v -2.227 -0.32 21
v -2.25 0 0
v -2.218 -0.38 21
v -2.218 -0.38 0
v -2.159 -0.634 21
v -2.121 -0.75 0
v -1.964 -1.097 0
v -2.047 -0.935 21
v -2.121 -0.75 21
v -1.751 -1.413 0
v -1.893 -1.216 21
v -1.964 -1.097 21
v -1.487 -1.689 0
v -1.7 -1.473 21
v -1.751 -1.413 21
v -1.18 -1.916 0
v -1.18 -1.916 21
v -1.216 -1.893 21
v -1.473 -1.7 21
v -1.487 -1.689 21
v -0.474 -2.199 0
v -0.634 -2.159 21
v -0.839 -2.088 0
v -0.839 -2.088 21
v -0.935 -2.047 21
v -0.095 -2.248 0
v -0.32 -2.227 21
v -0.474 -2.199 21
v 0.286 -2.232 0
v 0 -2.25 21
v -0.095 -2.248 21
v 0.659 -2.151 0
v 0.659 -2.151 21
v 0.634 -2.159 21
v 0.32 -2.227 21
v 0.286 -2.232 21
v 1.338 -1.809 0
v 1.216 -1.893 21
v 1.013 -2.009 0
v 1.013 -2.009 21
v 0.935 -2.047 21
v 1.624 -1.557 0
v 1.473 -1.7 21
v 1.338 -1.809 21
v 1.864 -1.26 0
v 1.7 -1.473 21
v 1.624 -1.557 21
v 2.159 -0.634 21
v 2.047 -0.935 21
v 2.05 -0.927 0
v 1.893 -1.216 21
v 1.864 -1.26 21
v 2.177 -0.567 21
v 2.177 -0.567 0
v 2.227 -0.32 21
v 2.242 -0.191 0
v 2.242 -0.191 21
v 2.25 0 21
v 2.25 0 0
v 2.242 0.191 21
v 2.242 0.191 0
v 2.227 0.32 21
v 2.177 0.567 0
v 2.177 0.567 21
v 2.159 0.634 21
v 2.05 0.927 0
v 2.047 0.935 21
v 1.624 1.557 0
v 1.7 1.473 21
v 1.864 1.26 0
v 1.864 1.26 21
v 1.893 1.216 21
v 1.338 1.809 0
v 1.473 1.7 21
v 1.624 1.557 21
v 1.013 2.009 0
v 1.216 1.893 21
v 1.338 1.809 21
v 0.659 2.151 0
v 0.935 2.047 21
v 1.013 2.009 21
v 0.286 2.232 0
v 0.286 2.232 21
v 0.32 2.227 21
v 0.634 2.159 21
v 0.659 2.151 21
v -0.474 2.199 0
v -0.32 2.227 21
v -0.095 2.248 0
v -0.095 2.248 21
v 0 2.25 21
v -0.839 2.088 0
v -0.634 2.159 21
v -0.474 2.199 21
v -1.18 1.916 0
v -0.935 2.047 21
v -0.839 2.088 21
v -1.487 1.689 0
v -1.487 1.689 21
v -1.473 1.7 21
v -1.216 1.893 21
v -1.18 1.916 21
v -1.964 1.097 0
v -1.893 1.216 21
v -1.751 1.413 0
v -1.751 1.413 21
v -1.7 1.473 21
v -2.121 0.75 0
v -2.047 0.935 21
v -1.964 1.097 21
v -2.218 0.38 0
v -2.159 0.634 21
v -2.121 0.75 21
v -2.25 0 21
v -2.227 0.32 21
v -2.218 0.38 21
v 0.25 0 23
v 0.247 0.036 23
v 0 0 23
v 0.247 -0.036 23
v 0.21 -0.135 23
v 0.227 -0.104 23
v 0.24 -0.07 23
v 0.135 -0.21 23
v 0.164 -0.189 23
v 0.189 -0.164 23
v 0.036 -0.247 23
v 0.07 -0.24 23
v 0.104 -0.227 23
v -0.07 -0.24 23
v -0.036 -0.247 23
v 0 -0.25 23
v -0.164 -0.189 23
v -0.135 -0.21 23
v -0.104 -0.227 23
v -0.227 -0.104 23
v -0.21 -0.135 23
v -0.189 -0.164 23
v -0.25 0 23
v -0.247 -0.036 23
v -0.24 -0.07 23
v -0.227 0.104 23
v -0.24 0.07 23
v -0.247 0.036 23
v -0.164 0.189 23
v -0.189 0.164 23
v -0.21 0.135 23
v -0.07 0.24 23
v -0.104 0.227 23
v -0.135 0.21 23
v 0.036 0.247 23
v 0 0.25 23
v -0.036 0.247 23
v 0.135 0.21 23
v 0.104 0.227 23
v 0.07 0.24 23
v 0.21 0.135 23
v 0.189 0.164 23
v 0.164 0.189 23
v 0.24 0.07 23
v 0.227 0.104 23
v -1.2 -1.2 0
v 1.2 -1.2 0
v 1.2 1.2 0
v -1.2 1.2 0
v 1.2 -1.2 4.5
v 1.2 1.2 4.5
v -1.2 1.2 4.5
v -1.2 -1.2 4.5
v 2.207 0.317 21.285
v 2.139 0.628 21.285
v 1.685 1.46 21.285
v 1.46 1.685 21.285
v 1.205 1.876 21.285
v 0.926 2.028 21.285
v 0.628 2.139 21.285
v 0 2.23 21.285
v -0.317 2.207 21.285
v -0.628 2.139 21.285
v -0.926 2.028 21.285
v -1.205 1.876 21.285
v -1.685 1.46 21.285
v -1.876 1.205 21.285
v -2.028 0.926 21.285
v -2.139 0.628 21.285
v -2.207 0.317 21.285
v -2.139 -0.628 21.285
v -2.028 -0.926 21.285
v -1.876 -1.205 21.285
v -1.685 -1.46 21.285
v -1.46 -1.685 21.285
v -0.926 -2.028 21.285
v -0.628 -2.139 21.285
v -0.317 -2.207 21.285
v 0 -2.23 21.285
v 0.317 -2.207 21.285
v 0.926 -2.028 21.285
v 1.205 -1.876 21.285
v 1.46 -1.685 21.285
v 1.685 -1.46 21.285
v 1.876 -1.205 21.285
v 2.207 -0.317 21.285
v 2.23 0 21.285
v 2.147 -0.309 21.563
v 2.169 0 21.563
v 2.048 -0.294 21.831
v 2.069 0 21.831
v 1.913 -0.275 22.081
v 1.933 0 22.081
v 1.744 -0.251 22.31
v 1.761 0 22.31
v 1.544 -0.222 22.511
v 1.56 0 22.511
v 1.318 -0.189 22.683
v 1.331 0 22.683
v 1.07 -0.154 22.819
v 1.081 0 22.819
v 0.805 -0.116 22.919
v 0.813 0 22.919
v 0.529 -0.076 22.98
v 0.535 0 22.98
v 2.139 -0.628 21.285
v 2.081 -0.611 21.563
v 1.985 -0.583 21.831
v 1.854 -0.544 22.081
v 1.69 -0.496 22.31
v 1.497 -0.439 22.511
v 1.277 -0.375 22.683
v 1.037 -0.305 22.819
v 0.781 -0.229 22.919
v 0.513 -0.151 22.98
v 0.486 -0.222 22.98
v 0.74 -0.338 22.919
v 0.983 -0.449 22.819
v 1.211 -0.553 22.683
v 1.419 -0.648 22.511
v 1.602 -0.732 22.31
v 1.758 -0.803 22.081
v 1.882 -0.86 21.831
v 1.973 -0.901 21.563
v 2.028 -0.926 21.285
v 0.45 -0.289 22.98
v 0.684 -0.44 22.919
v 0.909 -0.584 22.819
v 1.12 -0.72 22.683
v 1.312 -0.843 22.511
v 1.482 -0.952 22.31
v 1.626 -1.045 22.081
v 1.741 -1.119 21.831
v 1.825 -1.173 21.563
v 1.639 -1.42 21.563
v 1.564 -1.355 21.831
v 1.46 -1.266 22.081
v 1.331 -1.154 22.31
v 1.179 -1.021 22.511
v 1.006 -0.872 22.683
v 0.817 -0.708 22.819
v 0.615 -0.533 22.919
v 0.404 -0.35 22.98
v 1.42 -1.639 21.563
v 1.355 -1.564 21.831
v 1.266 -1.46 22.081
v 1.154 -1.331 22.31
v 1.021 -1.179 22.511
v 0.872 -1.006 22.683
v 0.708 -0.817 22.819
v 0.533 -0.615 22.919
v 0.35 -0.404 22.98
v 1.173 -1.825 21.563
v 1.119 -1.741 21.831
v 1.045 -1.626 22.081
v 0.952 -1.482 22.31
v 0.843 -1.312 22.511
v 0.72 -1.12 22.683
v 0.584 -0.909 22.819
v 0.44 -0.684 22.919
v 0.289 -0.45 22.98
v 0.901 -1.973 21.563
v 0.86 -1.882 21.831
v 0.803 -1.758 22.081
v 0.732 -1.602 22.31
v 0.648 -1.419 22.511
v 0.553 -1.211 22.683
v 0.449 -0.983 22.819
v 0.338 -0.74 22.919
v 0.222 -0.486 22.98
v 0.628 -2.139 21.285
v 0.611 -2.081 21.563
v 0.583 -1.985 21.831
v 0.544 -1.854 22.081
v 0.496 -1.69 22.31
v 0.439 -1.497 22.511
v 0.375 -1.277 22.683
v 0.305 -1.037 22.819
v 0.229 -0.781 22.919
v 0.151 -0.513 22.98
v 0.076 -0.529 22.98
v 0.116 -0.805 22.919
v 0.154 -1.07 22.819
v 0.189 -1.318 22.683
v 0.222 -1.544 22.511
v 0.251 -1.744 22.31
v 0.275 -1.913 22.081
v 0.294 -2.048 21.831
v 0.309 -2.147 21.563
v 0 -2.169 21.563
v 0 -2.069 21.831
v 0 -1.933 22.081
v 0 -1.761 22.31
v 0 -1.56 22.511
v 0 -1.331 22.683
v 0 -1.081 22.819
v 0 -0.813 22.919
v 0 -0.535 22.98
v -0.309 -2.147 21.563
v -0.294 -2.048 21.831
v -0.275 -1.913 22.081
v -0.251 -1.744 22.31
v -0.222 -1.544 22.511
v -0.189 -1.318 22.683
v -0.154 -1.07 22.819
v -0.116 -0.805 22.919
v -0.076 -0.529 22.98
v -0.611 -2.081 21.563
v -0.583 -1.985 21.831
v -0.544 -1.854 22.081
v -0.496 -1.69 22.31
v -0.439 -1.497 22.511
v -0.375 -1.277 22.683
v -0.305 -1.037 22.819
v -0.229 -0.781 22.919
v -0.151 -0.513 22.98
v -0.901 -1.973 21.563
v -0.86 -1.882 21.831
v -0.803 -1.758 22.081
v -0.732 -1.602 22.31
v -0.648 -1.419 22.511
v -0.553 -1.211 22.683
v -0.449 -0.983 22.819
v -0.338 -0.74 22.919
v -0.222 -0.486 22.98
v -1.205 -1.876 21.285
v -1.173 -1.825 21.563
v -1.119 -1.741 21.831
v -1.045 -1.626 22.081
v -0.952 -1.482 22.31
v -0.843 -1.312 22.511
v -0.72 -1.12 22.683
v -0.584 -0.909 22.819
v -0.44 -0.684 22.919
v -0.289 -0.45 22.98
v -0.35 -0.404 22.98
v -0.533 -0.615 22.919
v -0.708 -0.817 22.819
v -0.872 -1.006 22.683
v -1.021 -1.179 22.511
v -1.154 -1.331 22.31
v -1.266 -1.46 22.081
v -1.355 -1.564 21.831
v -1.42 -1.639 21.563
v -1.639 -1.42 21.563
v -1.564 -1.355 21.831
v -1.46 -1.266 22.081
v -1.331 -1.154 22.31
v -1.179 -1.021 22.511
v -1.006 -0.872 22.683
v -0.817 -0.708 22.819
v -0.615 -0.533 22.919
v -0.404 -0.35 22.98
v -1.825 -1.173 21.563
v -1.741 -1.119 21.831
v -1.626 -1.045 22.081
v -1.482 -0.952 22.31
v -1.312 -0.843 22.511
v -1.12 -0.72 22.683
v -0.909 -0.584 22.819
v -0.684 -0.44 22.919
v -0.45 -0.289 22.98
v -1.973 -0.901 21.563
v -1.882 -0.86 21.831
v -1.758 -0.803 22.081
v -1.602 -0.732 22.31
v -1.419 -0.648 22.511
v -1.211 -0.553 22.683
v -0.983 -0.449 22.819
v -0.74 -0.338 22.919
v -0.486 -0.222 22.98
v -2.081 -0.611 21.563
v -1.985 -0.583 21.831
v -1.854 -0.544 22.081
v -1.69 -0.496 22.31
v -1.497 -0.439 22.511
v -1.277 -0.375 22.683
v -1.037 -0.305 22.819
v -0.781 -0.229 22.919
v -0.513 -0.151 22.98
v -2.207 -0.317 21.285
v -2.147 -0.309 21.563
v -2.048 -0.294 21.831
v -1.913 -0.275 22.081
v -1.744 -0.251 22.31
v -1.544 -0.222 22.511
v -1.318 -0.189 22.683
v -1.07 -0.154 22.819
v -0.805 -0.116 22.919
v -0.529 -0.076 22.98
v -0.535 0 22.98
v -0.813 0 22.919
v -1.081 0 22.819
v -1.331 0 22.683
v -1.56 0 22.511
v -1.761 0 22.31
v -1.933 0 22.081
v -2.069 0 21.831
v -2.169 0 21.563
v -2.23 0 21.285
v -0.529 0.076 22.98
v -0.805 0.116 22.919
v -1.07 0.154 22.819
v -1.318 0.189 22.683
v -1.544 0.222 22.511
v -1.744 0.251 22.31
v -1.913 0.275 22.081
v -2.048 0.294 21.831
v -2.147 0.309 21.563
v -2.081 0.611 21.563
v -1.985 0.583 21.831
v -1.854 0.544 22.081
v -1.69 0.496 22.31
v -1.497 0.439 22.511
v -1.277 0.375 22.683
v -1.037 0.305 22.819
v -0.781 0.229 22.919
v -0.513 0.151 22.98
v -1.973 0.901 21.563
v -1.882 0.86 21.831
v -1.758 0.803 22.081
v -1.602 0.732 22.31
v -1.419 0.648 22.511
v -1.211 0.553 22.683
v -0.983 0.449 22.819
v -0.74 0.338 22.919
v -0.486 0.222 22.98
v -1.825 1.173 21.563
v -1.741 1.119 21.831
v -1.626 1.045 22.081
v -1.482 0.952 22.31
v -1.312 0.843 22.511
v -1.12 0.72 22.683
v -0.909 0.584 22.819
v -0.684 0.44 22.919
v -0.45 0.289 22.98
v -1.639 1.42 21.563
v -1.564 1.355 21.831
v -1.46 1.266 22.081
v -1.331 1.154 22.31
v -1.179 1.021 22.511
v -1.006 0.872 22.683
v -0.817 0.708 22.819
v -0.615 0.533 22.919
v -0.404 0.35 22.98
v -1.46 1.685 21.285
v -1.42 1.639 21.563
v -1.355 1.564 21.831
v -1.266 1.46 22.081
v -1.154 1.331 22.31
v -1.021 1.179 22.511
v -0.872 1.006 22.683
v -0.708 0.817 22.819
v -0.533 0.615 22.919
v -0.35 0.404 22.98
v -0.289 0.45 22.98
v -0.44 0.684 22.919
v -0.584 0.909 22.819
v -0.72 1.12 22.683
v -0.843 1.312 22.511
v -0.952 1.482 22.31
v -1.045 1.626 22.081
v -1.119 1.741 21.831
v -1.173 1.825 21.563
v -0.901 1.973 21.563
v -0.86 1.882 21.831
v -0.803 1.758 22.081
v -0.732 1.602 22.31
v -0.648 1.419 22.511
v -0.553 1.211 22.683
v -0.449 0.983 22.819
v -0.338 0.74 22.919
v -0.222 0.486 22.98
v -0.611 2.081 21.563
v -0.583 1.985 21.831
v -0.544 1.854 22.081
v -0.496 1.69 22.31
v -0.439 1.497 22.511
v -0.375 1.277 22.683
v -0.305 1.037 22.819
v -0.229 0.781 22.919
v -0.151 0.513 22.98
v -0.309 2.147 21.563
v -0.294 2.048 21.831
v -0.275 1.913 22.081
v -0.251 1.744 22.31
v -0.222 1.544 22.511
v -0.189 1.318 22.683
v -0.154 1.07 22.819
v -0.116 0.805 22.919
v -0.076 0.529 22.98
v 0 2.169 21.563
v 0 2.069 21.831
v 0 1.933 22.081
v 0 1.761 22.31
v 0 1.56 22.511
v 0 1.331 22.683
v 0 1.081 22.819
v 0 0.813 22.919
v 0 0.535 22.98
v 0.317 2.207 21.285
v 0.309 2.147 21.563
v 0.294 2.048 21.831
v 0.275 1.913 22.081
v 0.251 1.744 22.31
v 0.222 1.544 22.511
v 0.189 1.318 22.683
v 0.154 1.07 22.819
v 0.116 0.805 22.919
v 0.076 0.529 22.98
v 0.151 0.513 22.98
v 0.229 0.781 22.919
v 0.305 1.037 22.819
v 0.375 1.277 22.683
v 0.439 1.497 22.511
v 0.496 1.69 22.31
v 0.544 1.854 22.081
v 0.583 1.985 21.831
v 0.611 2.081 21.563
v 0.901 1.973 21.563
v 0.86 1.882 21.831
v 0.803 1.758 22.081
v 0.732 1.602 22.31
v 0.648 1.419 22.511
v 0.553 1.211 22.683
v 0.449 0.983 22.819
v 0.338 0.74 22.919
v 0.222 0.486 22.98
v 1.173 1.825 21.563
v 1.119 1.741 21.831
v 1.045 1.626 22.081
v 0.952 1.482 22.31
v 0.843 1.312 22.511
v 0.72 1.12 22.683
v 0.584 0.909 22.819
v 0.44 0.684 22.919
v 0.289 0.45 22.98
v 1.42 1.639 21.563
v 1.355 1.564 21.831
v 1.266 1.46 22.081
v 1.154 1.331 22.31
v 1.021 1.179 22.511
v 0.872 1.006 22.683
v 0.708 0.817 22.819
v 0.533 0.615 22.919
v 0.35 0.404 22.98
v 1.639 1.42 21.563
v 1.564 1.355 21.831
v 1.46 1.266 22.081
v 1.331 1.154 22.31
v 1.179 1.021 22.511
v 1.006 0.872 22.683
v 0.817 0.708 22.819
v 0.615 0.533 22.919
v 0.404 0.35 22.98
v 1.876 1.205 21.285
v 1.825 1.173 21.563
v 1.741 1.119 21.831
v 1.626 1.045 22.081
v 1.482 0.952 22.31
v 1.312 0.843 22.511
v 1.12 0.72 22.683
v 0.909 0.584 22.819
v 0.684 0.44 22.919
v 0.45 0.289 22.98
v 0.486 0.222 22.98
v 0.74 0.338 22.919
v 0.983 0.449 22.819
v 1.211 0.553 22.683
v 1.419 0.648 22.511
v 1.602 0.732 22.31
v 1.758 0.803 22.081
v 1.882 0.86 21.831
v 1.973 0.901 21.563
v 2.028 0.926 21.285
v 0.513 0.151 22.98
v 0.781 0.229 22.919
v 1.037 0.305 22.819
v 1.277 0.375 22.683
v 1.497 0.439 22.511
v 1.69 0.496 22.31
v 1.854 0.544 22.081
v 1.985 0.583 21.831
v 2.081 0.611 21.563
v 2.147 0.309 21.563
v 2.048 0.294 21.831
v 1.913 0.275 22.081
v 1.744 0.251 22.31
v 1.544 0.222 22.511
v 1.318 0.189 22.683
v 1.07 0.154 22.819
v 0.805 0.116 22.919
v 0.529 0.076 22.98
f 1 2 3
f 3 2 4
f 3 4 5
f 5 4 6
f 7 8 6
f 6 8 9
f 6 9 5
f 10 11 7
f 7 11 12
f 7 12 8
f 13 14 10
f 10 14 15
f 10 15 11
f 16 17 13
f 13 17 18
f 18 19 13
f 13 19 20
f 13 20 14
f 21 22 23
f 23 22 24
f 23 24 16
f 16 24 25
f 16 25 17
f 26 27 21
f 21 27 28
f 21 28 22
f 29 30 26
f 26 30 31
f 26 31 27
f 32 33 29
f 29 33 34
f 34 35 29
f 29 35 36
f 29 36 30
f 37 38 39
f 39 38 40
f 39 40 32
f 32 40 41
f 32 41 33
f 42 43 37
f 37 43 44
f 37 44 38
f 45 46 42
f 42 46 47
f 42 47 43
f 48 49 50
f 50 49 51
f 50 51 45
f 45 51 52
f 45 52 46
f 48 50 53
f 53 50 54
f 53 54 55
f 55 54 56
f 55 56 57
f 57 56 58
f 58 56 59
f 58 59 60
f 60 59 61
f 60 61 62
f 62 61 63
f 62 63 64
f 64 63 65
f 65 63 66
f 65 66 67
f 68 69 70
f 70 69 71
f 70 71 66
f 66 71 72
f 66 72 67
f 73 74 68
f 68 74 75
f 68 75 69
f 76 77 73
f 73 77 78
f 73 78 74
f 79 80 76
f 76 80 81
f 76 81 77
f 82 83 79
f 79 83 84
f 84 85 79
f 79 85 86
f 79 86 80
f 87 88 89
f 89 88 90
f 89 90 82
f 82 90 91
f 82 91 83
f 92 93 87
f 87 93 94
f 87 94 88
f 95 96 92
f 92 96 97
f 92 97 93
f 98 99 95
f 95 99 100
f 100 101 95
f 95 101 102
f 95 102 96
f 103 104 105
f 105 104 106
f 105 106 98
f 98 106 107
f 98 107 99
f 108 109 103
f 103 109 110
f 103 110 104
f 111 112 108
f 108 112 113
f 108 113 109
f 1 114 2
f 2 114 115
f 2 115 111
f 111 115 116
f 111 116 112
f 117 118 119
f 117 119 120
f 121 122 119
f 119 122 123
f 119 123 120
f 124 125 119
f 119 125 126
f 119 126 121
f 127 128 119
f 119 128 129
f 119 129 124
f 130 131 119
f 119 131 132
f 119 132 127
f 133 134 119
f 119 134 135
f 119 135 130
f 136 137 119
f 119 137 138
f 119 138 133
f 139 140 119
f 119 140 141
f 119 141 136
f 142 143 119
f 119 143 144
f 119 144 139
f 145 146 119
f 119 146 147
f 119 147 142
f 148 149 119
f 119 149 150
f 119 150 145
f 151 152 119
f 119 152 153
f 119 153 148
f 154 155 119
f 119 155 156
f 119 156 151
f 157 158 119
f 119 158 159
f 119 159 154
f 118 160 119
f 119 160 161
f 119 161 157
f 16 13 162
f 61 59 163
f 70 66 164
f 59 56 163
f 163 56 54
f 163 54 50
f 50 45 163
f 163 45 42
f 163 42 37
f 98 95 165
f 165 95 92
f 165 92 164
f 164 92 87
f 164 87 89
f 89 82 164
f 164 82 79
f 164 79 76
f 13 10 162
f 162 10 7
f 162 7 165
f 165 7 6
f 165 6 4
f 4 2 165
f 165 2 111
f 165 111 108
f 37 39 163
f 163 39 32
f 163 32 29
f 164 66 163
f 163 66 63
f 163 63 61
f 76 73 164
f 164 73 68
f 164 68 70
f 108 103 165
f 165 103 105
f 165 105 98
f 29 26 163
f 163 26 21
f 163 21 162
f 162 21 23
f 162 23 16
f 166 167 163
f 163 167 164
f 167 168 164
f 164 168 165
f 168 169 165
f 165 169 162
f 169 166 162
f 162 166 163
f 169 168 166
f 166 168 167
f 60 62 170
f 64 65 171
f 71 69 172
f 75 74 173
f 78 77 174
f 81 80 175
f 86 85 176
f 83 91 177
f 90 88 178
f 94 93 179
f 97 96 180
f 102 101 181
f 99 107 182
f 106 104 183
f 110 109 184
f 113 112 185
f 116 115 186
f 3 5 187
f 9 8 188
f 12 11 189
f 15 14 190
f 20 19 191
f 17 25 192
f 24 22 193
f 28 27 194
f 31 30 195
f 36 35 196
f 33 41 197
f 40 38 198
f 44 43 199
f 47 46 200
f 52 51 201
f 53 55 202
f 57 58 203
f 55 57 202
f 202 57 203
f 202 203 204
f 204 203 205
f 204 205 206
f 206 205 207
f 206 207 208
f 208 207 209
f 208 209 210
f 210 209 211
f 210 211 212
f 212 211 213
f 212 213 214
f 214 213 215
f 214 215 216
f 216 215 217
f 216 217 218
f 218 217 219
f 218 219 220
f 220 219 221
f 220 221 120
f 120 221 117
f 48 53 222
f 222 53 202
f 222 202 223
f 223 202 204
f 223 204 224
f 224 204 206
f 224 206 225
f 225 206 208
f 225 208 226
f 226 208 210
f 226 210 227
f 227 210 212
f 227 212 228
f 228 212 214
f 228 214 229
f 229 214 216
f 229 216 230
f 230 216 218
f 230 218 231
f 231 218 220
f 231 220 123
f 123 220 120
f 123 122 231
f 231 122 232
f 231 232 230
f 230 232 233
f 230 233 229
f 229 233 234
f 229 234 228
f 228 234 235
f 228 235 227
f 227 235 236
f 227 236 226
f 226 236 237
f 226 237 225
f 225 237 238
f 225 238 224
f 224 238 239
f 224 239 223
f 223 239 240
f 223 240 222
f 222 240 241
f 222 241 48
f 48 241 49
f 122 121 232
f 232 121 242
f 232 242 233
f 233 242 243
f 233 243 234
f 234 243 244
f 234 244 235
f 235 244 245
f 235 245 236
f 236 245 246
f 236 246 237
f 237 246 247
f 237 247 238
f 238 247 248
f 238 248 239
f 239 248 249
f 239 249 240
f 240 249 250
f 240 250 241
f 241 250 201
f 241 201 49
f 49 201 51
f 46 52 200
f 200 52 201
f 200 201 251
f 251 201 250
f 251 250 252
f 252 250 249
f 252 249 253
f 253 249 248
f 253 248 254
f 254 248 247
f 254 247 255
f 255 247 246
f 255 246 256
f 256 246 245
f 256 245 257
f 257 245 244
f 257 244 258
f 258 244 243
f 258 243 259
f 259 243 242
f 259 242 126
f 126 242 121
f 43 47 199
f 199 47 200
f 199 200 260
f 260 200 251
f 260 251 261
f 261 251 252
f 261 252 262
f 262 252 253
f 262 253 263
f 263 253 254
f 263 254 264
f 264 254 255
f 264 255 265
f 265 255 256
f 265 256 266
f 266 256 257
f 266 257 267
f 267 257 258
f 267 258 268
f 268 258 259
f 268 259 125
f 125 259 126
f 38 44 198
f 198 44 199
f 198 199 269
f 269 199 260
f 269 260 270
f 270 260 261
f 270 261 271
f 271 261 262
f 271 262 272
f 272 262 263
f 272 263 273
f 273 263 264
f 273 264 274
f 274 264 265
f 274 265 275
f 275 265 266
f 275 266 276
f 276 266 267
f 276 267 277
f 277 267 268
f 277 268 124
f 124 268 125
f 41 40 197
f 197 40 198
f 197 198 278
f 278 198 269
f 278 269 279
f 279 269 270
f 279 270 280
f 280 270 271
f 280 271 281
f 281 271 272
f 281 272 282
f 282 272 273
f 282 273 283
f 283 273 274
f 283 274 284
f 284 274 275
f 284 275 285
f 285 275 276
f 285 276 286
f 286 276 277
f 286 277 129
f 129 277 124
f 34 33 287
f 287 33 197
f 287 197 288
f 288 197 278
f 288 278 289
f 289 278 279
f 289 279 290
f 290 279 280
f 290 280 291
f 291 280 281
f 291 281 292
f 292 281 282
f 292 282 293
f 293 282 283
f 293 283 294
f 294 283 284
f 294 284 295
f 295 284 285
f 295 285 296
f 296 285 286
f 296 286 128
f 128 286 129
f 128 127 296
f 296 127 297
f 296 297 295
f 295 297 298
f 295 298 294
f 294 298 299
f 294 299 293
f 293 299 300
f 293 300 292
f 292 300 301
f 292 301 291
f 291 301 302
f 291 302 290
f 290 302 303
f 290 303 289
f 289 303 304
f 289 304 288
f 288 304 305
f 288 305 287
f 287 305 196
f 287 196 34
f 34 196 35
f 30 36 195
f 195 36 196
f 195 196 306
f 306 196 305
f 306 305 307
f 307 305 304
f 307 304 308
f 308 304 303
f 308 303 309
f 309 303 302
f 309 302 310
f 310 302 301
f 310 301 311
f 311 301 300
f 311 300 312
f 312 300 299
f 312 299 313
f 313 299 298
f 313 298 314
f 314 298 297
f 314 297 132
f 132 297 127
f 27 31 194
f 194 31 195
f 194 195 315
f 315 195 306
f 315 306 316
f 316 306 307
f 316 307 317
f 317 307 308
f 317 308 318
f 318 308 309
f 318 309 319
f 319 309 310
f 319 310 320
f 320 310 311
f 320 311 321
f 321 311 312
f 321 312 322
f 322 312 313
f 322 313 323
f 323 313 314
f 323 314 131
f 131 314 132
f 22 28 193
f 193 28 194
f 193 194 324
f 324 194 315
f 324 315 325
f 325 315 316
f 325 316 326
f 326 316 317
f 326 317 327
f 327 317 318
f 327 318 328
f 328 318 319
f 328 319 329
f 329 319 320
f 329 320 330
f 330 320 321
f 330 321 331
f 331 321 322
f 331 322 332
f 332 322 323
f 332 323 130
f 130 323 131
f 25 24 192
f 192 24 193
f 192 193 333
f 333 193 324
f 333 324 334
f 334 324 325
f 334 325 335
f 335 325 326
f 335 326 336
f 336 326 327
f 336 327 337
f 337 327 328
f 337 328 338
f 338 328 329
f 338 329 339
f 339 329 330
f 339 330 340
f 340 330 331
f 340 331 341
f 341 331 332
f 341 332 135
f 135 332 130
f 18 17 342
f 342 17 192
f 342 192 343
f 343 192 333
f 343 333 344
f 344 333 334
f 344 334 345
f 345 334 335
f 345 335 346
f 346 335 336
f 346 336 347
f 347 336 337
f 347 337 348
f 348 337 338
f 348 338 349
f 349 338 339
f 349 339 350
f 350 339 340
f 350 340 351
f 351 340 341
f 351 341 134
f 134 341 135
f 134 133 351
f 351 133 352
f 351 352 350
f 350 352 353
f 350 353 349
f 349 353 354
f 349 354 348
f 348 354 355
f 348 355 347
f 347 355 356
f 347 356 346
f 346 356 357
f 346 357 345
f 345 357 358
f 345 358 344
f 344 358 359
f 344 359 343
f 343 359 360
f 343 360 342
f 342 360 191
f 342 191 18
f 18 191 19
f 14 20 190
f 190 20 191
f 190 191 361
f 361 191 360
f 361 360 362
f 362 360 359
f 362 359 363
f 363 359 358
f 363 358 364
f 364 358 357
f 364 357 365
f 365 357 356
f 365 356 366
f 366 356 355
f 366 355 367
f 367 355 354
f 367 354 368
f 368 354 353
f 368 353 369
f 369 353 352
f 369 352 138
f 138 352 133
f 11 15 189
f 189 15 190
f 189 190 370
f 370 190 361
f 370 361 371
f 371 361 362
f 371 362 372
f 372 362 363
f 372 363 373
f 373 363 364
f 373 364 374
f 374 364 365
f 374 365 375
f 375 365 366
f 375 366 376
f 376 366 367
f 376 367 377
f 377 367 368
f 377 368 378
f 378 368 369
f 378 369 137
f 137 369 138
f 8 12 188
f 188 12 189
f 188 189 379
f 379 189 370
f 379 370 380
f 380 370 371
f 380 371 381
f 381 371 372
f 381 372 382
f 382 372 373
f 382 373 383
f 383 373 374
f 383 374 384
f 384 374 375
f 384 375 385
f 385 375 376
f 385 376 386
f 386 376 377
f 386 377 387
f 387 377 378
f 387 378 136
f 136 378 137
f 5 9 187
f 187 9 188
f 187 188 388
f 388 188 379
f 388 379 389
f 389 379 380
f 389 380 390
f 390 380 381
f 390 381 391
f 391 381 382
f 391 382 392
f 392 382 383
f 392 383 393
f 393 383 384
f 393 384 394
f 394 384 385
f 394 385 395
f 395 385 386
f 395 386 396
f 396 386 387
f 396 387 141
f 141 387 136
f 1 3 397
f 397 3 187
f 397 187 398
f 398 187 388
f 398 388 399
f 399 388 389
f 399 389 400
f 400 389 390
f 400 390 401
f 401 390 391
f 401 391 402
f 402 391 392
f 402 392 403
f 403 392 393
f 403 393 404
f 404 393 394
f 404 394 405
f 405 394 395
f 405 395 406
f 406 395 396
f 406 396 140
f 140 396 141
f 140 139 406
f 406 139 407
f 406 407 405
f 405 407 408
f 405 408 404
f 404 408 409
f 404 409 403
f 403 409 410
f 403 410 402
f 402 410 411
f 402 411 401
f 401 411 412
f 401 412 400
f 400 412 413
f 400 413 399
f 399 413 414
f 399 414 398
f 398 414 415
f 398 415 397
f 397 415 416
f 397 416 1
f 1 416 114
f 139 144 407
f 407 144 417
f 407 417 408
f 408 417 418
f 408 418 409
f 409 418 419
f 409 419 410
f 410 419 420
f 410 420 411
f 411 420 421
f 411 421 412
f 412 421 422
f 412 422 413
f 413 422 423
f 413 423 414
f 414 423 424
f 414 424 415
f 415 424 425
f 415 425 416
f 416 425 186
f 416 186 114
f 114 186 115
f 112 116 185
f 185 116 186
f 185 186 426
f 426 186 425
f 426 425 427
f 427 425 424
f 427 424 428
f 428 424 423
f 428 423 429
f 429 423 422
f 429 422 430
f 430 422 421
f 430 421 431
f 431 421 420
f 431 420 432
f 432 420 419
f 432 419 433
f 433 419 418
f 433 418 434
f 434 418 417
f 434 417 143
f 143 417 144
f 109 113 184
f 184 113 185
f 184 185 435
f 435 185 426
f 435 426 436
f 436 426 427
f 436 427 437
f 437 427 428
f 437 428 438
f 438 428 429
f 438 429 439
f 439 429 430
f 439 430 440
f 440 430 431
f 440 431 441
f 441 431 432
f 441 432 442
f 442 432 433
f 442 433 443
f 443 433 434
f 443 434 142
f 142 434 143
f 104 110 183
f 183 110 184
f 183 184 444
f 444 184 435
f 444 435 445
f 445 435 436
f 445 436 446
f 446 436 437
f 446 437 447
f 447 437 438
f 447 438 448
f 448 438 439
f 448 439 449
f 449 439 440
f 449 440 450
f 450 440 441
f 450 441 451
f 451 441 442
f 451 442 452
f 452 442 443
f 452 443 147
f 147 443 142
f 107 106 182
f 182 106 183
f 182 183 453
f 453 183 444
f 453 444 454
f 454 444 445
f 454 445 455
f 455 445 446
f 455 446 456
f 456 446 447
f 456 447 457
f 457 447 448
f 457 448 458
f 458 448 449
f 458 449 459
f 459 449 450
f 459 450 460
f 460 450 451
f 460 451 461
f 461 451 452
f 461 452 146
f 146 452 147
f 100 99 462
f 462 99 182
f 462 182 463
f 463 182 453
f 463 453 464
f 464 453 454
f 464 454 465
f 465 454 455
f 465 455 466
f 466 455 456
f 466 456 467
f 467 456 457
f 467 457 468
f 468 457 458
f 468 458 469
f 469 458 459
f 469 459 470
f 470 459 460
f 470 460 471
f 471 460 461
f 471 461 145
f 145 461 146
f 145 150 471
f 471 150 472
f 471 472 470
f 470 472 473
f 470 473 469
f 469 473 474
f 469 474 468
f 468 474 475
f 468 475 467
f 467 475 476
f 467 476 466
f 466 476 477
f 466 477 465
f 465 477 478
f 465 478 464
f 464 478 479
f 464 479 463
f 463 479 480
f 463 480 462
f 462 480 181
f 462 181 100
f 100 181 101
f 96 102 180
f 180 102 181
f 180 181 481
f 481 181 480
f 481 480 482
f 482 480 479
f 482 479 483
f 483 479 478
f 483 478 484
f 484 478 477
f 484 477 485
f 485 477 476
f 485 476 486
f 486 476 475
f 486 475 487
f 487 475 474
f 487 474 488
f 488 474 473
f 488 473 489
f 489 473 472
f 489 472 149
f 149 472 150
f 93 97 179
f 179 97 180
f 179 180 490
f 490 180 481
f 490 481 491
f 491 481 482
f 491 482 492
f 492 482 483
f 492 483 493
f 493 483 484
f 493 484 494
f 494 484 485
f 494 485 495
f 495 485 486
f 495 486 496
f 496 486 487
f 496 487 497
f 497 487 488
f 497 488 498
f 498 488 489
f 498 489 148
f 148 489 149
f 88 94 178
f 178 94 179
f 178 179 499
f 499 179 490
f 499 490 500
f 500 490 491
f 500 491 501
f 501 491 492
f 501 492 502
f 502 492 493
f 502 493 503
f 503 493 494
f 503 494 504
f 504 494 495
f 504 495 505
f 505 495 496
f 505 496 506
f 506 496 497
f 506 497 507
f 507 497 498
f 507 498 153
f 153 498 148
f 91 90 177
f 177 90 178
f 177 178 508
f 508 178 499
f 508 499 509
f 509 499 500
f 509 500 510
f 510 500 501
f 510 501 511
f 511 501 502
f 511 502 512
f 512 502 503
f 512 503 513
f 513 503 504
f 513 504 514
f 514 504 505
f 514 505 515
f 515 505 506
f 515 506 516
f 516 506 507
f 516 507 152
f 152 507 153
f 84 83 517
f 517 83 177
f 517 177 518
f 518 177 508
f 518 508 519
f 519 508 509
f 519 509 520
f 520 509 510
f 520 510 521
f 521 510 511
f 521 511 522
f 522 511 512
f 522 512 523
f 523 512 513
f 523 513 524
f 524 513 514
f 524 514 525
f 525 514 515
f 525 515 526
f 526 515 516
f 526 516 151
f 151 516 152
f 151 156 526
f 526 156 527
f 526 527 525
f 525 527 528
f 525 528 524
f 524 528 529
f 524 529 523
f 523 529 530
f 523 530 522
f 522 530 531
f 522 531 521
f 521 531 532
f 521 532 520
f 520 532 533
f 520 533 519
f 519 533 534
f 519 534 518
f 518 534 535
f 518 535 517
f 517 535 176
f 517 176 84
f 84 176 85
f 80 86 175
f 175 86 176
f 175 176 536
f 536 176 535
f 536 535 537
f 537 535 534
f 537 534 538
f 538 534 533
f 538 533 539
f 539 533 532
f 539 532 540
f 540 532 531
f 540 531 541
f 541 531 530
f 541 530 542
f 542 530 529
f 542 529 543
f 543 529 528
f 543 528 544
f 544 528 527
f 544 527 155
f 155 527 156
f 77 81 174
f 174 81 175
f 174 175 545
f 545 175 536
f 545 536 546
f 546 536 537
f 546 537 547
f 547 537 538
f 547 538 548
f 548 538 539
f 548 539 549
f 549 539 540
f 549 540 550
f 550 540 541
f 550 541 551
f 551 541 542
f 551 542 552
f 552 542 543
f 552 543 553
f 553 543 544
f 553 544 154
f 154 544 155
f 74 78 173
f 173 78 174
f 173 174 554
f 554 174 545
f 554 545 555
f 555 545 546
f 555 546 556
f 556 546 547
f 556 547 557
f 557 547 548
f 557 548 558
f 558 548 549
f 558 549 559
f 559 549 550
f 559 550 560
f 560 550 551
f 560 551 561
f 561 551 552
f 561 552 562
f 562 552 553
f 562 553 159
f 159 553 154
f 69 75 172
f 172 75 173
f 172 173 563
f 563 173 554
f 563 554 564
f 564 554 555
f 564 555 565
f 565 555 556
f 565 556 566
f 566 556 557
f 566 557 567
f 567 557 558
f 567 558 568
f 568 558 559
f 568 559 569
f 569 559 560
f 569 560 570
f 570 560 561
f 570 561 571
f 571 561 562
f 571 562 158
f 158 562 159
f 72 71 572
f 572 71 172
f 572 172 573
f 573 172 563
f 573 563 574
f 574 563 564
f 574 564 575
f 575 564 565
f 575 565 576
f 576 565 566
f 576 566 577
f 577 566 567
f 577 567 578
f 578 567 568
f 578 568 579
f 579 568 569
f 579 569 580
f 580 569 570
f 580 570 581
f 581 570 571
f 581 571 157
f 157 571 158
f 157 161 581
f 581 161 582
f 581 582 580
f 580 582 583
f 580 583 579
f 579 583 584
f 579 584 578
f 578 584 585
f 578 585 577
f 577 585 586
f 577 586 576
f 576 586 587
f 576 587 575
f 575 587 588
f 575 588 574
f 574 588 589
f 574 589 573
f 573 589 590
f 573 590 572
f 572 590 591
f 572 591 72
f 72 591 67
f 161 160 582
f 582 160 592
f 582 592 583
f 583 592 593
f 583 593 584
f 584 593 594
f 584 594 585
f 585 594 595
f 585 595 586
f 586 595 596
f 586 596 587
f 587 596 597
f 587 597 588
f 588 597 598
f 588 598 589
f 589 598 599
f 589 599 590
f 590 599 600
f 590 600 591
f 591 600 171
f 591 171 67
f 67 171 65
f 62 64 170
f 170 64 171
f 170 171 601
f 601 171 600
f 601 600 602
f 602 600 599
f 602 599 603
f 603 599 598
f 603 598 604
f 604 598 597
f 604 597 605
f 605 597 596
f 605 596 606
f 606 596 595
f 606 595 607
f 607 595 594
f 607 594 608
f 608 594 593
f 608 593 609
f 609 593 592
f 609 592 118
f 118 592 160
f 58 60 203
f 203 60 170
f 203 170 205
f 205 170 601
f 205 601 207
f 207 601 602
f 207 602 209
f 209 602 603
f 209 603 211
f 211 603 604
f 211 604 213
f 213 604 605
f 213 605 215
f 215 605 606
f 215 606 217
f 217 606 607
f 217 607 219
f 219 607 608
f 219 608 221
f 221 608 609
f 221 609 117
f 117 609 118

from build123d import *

# Parameters (mm, degrees)
SKETCH_1_R          = 2.25
EXTRUDE_2_DEPTH     = 23
SKETCH_7_W          = 2.4
SKETCH_7_H          = 2.4
CUT_EXTRUDE_3_DEPTH = 4.5
FILLET_2_R          = 2


with BuildPart() as part:
    # 草图1 → 凸台-拉伸2 (new body)
    with BuildSketch(Plane.XY):
        Circle(SKETCH_1_R)
    extrude(amount=EXTRUDE_2_DEPTH)

    # 草图7 → 切除-拉伸3 (cut)
    with BuildSketch(Plane.XY):
        Rectangle(SKETCH_7_W, SKETCH_7_H)
    extrude(amount=CUT_EXTRUDE_3_DEPTH, mode=Mode.SUBTRACT)

    # 圆角2
    fillet_2_edges = [part.edges().sort_by_distance(p)[0] for p in [
        (-2.25, 0, 23),
    ]]
    fillet(fillet_2_edges, radius=FILLET_2_R)


solid = part.part
